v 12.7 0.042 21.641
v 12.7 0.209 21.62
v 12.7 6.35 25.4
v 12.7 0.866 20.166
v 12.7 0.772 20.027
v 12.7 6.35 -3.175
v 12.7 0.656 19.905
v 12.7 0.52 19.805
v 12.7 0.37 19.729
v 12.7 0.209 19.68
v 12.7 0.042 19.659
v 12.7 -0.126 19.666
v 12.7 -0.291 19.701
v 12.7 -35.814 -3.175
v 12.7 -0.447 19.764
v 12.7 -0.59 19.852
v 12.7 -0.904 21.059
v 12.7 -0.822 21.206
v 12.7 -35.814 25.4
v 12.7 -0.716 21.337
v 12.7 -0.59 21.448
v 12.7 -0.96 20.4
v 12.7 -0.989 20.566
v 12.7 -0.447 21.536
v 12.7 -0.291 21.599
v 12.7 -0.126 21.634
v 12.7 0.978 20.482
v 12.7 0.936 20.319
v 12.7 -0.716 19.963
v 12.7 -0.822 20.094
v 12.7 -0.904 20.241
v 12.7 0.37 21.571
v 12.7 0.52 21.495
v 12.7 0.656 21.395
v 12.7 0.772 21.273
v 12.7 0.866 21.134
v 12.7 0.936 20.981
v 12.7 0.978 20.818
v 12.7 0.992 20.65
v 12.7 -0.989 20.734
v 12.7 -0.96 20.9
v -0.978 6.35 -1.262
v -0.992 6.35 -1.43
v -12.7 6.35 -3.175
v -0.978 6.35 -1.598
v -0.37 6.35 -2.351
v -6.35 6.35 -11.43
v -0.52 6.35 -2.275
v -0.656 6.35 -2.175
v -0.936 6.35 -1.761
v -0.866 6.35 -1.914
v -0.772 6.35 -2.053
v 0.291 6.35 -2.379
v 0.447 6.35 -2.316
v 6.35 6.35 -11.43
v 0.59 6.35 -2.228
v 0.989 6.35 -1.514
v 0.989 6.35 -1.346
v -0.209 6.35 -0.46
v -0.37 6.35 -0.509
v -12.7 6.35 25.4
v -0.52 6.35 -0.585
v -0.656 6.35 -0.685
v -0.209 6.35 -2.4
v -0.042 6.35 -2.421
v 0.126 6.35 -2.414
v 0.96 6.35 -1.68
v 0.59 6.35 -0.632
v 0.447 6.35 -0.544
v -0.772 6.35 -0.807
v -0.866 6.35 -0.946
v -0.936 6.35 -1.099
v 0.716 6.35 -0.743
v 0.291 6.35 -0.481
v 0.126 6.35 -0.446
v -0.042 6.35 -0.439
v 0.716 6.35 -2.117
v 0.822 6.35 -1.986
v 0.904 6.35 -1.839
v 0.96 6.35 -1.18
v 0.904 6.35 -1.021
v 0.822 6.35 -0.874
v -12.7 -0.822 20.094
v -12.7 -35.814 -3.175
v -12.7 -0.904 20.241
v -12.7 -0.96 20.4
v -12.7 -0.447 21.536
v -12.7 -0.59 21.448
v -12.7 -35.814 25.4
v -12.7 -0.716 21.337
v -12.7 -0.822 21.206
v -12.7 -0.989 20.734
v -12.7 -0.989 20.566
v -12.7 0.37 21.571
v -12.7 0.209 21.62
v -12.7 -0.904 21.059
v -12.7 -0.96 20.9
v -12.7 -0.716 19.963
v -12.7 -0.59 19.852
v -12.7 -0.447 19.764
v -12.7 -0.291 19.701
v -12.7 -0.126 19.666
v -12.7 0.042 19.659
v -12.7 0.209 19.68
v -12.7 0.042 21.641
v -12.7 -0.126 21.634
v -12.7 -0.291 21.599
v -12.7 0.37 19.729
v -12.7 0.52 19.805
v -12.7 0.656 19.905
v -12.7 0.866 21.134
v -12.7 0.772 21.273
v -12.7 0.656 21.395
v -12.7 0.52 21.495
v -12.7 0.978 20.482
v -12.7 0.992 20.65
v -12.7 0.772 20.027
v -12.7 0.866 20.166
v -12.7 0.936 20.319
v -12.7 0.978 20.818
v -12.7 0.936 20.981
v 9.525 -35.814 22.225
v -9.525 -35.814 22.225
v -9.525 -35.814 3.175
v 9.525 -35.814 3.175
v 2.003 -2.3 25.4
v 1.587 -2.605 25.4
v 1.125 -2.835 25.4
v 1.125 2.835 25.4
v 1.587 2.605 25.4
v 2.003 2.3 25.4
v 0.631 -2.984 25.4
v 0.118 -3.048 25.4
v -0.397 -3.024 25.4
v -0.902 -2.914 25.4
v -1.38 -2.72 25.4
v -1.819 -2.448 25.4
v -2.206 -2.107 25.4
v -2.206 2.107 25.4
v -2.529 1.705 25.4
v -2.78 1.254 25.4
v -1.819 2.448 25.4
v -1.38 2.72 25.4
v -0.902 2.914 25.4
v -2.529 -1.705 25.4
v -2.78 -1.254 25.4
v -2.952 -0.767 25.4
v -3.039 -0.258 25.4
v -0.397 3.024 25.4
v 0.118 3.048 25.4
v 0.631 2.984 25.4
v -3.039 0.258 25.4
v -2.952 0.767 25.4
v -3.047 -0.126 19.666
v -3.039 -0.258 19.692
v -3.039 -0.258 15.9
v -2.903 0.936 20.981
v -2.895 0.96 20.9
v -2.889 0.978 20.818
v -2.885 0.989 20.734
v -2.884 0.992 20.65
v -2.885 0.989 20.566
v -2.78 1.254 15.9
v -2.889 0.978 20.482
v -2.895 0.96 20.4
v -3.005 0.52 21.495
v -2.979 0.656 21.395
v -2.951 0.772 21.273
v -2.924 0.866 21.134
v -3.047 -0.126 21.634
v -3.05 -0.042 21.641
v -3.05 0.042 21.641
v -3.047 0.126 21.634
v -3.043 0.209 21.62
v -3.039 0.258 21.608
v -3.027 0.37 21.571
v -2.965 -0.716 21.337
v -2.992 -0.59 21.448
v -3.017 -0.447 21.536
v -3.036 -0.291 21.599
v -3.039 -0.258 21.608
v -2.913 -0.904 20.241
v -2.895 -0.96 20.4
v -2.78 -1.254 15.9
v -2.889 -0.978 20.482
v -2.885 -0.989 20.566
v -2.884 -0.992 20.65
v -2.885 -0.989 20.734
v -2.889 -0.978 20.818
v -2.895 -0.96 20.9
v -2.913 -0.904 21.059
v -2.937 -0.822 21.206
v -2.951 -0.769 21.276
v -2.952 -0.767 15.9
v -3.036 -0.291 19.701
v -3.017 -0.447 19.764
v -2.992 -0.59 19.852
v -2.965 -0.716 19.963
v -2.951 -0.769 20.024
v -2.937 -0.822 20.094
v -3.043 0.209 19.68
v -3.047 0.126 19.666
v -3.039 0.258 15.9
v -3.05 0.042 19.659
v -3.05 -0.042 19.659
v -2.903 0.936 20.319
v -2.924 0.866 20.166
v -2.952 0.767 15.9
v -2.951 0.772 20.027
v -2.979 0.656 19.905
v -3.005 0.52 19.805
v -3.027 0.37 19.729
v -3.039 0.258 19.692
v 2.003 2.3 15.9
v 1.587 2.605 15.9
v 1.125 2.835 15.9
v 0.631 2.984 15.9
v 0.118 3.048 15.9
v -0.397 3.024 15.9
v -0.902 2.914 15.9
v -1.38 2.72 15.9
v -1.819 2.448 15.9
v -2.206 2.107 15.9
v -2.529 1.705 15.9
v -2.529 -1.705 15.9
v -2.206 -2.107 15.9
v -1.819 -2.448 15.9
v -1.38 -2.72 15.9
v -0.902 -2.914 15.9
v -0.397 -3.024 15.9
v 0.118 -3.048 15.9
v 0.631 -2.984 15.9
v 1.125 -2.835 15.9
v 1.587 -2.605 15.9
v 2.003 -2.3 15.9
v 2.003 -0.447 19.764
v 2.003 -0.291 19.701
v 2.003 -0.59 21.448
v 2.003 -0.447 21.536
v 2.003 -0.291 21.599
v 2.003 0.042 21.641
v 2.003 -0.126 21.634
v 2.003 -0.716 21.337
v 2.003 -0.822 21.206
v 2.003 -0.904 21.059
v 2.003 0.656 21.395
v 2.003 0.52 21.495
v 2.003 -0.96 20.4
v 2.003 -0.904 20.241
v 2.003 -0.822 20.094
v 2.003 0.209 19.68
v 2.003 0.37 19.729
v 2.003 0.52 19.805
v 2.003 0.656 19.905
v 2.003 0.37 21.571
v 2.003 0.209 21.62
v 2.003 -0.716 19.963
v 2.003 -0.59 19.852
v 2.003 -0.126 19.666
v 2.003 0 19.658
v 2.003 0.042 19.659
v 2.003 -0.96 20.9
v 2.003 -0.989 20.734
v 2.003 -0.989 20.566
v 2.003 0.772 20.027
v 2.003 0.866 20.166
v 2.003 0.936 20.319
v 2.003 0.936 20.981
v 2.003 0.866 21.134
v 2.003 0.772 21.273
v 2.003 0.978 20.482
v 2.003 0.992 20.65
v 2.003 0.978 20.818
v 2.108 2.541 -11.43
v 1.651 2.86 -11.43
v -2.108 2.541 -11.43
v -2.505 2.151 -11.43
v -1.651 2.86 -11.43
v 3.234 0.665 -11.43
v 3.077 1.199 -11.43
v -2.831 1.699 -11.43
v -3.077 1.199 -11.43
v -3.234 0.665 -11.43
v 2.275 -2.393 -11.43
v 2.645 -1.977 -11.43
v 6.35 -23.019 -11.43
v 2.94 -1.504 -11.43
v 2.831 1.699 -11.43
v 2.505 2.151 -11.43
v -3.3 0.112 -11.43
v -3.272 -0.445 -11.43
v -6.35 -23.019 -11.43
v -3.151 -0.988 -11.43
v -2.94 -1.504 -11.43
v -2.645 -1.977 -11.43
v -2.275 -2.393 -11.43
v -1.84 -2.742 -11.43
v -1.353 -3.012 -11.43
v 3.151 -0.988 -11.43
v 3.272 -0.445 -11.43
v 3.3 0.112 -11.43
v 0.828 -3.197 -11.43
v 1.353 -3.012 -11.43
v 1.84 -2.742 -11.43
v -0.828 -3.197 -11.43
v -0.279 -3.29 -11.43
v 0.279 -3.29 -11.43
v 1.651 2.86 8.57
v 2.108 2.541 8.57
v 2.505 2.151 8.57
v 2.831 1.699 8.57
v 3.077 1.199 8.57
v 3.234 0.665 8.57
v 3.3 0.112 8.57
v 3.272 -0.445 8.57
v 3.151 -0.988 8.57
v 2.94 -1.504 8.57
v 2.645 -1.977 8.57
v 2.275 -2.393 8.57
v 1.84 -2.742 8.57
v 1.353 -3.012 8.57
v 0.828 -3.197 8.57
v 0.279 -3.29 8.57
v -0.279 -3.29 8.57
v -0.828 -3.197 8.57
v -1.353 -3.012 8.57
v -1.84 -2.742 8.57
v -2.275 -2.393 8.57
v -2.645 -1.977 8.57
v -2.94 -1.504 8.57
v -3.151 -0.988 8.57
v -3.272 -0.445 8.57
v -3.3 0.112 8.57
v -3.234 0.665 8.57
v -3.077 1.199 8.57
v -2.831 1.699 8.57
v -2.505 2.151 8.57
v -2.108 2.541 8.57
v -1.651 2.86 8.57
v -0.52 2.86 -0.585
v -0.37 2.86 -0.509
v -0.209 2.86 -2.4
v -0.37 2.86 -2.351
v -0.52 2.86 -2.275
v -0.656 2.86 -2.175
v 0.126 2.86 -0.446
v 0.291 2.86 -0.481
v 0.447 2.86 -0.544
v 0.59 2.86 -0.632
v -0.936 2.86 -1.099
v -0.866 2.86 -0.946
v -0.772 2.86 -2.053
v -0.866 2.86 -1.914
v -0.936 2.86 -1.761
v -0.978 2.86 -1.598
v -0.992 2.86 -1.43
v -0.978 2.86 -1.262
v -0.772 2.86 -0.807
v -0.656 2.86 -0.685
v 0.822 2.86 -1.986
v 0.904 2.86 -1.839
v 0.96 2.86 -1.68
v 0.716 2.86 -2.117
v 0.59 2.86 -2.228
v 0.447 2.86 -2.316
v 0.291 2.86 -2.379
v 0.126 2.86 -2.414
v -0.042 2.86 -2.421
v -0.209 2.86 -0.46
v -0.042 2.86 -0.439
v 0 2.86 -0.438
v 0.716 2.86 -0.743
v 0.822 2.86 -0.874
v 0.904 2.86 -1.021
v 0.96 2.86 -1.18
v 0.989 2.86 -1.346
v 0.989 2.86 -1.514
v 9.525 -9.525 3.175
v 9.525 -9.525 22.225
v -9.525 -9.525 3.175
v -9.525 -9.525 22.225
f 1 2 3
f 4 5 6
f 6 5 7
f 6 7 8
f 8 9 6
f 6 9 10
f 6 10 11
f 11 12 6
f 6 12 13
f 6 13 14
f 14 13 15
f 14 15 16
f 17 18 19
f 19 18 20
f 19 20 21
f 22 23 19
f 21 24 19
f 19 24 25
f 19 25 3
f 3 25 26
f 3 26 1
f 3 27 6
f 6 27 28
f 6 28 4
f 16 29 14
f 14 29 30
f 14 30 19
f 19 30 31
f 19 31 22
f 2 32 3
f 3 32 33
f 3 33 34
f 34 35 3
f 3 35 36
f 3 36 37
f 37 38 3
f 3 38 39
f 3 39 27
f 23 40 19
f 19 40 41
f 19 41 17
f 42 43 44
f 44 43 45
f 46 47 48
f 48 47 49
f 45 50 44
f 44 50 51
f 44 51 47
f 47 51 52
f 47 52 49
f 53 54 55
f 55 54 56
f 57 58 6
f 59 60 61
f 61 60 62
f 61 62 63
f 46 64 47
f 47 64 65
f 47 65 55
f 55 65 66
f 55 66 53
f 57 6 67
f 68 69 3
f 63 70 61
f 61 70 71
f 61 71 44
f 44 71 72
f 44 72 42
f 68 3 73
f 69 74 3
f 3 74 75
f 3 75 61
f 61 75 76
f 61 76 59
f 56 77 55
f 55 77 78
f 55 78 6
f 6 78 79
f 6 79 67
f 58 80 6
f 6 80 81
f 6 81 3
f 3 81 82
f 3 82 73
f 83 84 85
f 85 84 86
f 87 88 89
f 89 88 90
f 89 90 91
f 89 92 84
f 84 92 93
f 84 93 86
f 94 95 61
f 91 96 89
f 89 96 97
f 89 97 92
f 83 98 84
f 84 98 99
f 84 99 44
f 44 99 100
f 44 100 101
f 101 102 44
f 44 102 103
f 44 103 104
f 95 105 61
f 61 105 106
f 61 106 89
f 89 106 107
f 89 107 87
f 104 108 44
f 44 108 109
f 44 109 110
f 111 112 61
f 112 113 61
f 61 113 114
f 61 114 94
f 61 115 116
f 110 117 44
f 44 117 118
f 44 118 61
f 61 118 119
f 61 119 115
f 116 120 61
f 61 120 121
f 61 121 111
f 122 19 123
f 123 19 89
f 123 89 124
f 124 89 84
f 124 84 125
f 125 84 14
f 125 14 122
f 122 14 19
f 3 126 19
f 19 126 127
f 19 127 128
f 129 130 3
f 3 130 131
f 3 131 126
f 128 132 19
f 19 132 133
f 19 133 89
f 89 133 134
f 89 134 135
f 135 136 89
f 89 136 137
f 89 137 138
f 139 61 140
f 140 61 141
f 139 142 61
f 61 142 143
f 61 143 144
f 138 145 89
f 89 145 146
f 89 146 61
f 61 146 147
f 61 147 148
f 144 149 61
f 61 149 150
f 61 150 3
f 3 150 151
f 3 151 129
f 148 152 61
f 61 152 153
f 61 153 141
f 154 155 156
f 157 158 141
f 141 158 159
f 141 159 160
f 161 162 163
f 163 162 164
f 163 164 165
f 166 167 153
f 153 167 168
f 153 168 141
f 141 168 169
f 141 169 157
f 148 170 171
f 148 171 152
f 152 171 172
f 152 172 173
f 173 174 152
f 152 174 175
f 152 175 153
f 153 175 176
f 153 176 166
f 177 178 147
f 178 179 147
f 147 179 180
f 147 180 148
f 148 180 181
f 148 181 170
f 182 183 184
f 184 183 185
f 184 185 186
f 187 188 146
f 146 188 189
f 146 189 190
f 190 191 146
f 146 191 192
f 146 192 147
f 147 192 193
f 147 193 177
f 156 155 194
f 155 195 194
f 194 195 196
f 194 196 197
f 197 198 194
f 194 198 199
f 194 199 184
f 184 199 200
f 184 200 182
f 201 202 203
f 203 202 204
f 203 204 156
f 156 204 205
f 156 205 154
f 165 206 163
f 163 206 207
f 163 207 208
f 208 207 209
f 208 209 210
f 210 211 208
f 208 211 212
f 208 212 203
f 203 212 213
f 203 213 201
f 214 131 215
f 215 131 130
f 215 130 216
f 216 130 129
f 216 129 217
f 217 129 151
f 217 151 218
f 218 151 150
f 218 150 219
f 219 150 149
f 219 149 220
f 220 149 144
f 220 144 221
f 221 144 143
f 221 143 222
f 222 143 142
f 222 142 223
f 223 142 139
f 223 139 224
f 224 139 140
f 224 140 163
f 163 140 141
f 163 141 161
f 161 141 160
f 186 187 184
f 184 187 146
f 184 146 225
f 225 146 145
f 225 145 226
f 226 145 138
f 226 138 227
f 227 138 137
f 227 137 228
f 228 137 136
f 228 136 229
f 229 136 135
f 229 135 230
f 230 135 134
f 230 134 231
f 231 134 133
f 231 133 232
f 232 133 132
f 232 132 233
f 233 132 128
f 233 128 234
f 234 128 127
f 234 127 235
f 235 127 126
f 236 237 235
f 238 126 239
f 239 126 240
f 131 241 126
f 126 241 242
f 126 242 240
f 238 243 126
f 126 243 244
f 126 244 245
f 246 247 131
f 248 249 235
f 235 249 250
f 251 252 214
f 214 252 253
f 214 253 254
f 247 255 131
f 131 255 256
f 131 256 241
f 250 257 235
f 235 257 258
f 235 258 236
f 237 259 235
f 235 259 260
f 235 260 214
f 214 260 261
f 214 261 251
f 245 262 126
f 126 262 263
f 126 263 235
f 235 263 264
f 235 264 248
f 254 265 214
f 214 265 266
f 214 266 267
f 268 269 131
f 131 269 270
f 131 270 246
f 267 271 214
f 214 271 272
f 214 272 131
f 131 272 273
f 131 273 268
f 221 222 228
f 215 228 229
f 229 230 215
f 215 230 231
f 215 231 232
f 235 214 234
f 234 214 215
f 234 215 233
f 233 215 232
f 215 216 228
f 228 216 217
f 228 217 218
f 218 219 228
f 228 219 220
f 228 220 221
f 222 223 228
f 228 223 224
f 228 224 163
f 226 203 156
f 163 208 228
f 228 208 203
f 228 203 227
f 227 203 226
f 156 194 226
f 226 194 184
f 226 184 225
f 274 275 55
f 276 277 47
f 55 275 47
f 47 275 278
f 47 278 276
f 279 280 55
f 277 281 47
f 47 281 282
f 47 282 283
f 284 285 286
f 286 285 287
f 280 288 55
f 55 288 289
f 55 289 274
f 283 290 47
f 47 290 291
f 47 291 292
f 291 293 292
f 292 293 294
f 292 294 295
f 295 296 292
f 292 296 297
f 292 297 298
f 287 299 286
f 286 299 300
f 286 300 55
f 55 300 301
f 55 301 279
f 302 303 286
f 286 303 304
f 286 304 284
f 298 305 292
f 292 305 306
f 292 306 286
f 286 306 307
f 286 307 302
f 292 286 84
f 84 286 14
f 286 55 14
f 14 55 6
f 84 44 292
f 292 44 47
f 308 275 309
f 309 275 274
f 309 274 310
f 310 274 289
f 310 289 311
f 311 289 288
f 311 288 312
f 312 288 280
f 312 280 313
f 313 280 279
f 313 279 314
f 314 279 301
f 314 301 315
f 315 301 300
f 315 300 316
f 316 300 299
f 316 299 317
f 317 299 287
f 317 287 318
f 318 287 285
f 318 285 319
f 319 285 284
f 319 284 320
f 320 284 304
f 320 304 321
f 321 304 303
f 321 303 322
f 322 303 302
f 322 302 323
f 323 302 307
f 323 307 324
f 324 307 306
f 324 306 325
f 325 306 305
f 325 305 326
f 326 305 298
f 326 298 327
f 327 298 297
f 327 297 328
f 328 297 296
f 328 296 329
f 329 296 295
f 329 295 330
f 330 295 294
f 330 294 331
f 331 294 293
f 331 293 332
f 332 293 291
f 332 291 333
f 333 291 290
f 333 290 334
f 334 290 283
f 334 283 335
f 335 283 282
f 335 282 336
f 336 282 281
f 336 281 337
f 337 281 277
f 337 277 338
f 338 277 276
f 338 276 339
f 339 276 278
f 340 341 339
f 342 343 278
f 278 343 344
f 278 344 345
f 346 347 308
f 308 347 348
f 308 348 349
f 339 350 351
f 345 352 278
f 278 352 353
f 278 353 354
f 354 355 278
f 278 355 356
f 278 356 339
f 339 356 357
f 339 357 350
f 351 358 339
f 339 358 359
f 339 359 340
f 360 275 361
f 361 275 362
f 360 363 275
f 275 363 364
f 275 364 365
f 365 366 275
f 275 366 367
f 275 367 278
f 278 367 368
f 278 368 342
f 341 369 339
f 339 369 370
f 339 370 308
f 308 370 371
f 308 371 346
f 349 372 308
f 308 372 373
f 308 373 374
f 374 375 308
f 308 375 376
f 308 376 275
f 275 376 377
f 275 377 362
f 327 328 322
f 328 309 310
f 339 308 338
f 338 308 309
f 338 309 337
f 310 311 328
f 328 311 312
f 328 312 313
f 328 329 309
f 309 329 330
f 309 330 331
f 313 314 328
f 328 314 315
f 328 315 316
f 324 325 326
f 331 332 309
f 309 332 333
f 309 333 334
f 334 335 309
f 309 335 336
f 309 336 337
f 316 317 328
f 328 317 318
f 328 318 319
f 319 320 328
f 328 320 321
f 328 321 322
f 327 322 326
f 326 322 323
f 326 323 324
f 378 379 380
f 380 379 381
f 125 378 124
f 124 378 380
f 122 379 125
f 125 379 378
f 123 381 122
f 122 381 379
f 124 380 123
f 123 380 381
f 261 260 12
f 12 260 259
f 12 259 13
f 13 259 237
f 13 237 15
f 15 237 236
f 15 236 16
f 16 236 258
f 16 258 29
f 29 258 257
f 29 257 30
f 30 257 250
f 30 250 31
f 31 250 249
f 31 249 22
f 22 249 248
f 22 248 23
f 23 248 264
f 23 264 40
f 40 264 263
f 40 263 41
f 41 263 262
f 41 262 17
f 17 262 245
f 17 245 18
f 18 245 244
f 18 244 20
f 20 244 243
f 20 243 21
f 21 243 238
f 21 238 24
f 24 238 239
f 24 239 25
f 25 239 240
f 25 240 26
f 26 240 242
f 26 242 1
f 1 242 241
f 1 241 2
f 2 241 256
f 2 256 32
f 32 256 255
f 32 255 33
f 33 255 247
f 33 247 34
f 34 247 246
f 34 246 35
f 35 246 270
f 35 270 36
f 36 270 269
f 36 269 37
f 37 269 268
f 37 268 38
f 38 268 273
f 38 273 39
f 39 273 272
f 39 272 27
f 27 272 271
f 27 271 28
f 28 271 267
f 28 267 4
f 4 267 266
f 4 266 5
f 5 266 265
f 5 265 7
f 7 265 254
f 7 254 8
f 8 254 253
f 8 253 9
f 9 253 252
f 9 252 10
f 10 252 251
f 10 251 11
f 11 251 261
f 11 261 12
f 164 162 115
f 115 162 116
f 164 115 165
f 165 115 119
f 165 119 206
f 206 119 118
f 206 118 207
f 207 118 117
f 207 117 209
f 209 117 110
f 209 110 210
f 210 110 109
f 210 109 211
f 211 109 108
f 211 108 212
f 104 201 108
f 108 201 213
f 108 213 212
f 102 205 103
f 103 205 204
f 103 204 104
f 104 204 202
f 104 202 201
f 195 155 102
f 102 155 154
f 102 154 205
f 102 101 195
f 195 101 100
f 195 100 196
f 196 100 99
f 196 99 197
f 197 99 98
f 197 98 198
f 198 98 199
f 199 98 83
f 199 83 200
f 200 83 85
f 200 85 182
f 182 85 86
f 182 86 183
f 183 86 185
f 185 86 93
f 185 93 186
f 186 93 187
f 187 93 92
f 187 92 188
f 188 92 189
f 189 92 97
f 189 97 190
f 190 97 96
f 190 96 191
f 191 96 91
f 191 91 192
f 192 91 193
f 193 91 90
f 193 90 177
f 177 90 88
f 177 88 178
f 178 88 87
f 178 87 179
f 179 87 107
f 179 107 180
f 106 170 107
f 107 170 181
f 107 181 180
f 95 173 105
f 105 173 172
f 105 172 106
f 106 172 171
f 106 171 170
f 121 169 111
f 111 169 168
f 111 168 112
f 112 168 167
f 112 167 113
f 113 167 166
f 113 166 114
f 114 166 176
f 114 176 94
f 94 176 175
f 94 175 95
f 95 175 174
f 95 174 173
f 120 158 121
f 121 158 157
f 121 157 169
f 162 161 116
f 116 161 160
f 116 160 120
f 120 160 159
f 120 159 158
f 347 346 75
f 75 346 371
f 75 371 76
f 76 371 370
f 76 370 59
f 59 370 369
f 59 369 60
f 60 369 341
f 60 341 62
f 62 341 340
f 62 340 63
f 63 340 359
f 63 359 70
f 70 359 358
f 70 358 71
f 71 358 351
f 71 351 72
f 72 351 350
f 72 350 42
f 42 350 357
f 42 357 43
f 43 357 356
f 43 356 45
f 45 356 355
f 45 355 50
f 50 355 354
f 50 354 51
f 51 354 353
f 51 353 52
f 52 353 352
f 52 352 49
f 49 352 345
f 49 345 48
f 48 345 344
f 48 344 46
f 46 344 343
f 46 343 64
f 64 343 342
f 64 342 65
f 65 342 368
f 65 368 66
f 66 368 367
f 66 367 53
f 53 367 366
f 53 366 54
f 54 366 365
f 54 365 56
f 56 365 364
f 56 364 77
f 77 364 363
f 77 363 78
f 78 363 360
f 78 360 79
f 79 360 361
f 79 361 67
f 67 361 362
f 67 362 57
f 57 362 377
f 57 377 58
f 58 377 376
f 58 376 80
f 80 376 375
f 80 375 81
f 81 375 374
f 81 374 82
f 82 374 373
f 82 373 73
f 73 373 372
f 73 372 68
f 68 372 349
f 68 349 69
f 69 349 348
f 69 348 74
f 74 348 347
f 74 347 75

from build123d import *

# Parameters (mm, degrees)
BOSS_EXTRUDE1_DEPTH = 25.4
CUT_EXTRUDE1_DEPTH  = 9.5
SKETCH5_W           = 25.4
SKETCH5_H           = 42.164
BOSS_EXTRUDE2_DEPTH = 11.43
CUT_EXTRUDE2_REACH  = 53.538
CUT_EXTRUDE3_REACH  = 53.255
CUT_EXTRUDE4_DEPTH  = 20
SKETCH10_W          = 19.05
SKETCH10_H          = 19.05
CUT_EXTRUDE5_DEPTH  = 26.289
CUT_EXTRUDE6_REACH  = 55.322
SKETCH11_W          = 1.5875
SKETCH11_H          = 12.7
SKETCH12_R          = 0.9921875
CUT_EXTRUDE7_DEPTH  = 51.724378715
CUT_EXTRUDE8_REACH  = 52.836
SKETCH13_R          = 0.9921875


with BuildPart() as part:
    # Sketch2 → Boss-Extrude1 (new body)
    with BuildSketch(Plane.XY):
        Polygon((12.7, -6.35), (14.2875, -6.35), (14.2875, 6.35), (-14.2875, 6.35), (-14.2875, -6.35), (-12.7, -6.35), (-12.7, -35.814), (12.7, -35.814), align=None)
    extrude(amount=BOSS_EXTRUDE1_DEPTH)

    # Sketch3 → Cut-Extrude1 (cut)
    with BuildSketch(Plane.XY.offset(25.4)):
        with BuildLine():
            Line((2.003122562, 2.3), (2.003122562, -2.3))
            ThreePointArc((2.003122562, -2.3), (-3.05, 0), (2.003122562, 2.3))
        make_face()
    extrude(amount=-CUT_EXTRUDE1_DEPTH, mode=Mode.SUBTRACT)

    # Sketch5 → Boss-Extrude2 (add)
    with BuildSketch(Plane(origin=(0, 0, 0), x_dir=(-1, 0, 0), z_dir=(0, 0, -1))):
        with Locations((0, -14.732)):
            Rectangle(SKETCH5_W, SKETCH5_H)
    extrude(amount=BOSS_EXTRUDE2_DEPTH)

    # Sketch6 → Cut-Extrude2 (cut, up to next)
    with BuildSketch(Plane(origin=(12.7, 0, 0), x_dir=(0, 0, -1), z_dir=(1, 0, 0)), mode=Mode.PRIVATE) as cut_extrude2_sk1:
        Polygon((3.175, -35.814), (11.43, -23.01875), (11.43, -35.814), align=None)
    cut_extrude2_tool1 = extrude(cut_extrude2_sk1.sketch, amount=-CUT_EXTRUDE2_REACH, mode=Mode.PRIVATE) & part.part
    add(cut_extrude2_tool1.solids().sort_by_distance((12.7, -31.548917, -8.678333))[0], mode=Mode.SUBTRACT)

    # Sketch7 → Cut-Extrude3 (cut, up to next)
    with BuildSketch(Plane.XZ.offset(35.814), mode=Mode.PRIVATE) as cut_extrude3_sk1:
        Polygon((-12.7, -11.43), (-12.7, -3.175), (-6.35, -11.43), align=None)
    cut_extrude3_tool1 = extrude(cut_extrude3_sk1.sketch, amount=-CUT_EXTRUDE3_REACH, mode=Mode.PRIVATE) & part.part
    # Sketch7 → Cut-Extrude3 (cut, up to next)
    with BuildSketch(Plane.XZ.offset(35.814), mode=Mode.PRIVATE) as cut_extrude3_sk2:
        Polygon((6.35, -11.43), (12.7, -3.175), (12.7, -11.43), align=None)
    cut_extrude3_tool2 = extrude(cut_extrude3_sk2.sketch, amount=-CUT_EXTRUDE3_REACH, mode=Mode.PRIVATE) & part.part
    add(cut_extrude3_tool1.solids().sort_by_distance((-10.583333, -35.814, -8.678333))[0], mode=Mode.SUBTRACT)
    add(cut_extrude3_tool2.solids().sort_by_distance((10.583333, -35.814, -8.678333))[0], mode=Mode.SUBTRACT)

    # Sketch8 → Cut-Extrude4 (cut)
    with BuildSketch(Plane(origin=(0, 0, -11.43), x_dir=(-1, 0, 0), z_dir=(0, 0, -1))):
        with BuildLine():
            Line((-1.651, 2.859615883), (1.651, 2.859615883))
            ThreePointArc((1.651, 2.859615883), (0, -3.302), (-1.651, 2.859615883))
        make_face()
    extrude(amount=-CUT_EXTRUDE4_DEPTH, mode=Mode.SUBTRACT)

    # Sketch10 → Cut-Extrude5 (cut)
    with BuildSketch(Plane.XZ.offset(35.814)):
        with Locations((0, 12.7)):
            Rectangle(SKETCH10_W, SKETCH10_H)
    extrude(amount=-CUT_EXTRUDE5_DEPTH, mode=Mode.SUBTRACT)

    # Sketch11 → Cut-Extrude6 (cut, up to next)
    with BuildSketch(Plane.XY.offset(25.4), mode=Mode.PRIVATE) as cut_extrude6_sk1:
        with Locations((-13.49375, 0)):
            Rectangle(SKETCH11_W, SKETCH11_H)
    cut_extrude6_tool1 = extrude(cut_extrude6_sk1.sketch, amount=-CUT_EXTRUDE6_REACH, mode=Mode.PRIVATE) & part.part
    # Sketch11 → Cut-Extrude6 (cut, up to next)
    with BuildSketch(Plane.XY.offset(25.4), mode=Mode.PRIVATE) as cut_extrude6_sk2:
        with Locations((13.49375, 0)):
            Rectangle(SKETCH11_W, SKETCH11_H)
    cut_extrude6_tool2 = extrude(cut_extrude6_sk2.sketch, amount=-CUT_EXTRUDE6_REACH, mode=Mode.PRIVATE) & part.part
    add(cut_extrude6_tool1.solids().sort_by_distance((-13.49375, 0, 25.4))[0], mode=Mode.SUBTRACT)
    add(cut_extrude6_tool2.solids().sort_by_distance((13.49375, 0, 25.4))[0], mode=Mode.SUBTRACT)

    # Sketch12 → Cut-Extrude7 (cut, through all)
    with BuildSketch(Plane(origin=(12.7, 0, 0), x_dir=(0, 0, -1), z_dir=(1, 0, 0))):
        with Locations(Location((-20.65, 0, 0), (0, 0, 90))):
            Circle(SKETCH12_R)
    extrude(amount=-CUT_EXTRUDE7_DEPTH, mode=Mode.SUBTRACT)

    # Sketch13 → Cut-Extrude8 (cut, up to next)
    with BuildSketch(Plane(origin=(0, 6.35, 0), x_dir=(1, 0, 0), z_dir=(0, 1, 0)), mode=Mode.PRIVATE) as cut_extrude8_sk1:
        with Locations(Location((0, 1.43, 0), (0, 0, 180))):
            Circle(SKETCH13_R)
    cut_extrude8_tool1 = extrude(cut_extrude8_sk1.sketch, amount=-CUT_EXTRUDE8_REACH, mode=Mode.PRIVATE) & part.part
    add(cut_extrude8_tool1.solids().sort_by_distance((0, 6.35, -1.43))[0], mode=Mode.SUBTRACT)


solid = part.part
